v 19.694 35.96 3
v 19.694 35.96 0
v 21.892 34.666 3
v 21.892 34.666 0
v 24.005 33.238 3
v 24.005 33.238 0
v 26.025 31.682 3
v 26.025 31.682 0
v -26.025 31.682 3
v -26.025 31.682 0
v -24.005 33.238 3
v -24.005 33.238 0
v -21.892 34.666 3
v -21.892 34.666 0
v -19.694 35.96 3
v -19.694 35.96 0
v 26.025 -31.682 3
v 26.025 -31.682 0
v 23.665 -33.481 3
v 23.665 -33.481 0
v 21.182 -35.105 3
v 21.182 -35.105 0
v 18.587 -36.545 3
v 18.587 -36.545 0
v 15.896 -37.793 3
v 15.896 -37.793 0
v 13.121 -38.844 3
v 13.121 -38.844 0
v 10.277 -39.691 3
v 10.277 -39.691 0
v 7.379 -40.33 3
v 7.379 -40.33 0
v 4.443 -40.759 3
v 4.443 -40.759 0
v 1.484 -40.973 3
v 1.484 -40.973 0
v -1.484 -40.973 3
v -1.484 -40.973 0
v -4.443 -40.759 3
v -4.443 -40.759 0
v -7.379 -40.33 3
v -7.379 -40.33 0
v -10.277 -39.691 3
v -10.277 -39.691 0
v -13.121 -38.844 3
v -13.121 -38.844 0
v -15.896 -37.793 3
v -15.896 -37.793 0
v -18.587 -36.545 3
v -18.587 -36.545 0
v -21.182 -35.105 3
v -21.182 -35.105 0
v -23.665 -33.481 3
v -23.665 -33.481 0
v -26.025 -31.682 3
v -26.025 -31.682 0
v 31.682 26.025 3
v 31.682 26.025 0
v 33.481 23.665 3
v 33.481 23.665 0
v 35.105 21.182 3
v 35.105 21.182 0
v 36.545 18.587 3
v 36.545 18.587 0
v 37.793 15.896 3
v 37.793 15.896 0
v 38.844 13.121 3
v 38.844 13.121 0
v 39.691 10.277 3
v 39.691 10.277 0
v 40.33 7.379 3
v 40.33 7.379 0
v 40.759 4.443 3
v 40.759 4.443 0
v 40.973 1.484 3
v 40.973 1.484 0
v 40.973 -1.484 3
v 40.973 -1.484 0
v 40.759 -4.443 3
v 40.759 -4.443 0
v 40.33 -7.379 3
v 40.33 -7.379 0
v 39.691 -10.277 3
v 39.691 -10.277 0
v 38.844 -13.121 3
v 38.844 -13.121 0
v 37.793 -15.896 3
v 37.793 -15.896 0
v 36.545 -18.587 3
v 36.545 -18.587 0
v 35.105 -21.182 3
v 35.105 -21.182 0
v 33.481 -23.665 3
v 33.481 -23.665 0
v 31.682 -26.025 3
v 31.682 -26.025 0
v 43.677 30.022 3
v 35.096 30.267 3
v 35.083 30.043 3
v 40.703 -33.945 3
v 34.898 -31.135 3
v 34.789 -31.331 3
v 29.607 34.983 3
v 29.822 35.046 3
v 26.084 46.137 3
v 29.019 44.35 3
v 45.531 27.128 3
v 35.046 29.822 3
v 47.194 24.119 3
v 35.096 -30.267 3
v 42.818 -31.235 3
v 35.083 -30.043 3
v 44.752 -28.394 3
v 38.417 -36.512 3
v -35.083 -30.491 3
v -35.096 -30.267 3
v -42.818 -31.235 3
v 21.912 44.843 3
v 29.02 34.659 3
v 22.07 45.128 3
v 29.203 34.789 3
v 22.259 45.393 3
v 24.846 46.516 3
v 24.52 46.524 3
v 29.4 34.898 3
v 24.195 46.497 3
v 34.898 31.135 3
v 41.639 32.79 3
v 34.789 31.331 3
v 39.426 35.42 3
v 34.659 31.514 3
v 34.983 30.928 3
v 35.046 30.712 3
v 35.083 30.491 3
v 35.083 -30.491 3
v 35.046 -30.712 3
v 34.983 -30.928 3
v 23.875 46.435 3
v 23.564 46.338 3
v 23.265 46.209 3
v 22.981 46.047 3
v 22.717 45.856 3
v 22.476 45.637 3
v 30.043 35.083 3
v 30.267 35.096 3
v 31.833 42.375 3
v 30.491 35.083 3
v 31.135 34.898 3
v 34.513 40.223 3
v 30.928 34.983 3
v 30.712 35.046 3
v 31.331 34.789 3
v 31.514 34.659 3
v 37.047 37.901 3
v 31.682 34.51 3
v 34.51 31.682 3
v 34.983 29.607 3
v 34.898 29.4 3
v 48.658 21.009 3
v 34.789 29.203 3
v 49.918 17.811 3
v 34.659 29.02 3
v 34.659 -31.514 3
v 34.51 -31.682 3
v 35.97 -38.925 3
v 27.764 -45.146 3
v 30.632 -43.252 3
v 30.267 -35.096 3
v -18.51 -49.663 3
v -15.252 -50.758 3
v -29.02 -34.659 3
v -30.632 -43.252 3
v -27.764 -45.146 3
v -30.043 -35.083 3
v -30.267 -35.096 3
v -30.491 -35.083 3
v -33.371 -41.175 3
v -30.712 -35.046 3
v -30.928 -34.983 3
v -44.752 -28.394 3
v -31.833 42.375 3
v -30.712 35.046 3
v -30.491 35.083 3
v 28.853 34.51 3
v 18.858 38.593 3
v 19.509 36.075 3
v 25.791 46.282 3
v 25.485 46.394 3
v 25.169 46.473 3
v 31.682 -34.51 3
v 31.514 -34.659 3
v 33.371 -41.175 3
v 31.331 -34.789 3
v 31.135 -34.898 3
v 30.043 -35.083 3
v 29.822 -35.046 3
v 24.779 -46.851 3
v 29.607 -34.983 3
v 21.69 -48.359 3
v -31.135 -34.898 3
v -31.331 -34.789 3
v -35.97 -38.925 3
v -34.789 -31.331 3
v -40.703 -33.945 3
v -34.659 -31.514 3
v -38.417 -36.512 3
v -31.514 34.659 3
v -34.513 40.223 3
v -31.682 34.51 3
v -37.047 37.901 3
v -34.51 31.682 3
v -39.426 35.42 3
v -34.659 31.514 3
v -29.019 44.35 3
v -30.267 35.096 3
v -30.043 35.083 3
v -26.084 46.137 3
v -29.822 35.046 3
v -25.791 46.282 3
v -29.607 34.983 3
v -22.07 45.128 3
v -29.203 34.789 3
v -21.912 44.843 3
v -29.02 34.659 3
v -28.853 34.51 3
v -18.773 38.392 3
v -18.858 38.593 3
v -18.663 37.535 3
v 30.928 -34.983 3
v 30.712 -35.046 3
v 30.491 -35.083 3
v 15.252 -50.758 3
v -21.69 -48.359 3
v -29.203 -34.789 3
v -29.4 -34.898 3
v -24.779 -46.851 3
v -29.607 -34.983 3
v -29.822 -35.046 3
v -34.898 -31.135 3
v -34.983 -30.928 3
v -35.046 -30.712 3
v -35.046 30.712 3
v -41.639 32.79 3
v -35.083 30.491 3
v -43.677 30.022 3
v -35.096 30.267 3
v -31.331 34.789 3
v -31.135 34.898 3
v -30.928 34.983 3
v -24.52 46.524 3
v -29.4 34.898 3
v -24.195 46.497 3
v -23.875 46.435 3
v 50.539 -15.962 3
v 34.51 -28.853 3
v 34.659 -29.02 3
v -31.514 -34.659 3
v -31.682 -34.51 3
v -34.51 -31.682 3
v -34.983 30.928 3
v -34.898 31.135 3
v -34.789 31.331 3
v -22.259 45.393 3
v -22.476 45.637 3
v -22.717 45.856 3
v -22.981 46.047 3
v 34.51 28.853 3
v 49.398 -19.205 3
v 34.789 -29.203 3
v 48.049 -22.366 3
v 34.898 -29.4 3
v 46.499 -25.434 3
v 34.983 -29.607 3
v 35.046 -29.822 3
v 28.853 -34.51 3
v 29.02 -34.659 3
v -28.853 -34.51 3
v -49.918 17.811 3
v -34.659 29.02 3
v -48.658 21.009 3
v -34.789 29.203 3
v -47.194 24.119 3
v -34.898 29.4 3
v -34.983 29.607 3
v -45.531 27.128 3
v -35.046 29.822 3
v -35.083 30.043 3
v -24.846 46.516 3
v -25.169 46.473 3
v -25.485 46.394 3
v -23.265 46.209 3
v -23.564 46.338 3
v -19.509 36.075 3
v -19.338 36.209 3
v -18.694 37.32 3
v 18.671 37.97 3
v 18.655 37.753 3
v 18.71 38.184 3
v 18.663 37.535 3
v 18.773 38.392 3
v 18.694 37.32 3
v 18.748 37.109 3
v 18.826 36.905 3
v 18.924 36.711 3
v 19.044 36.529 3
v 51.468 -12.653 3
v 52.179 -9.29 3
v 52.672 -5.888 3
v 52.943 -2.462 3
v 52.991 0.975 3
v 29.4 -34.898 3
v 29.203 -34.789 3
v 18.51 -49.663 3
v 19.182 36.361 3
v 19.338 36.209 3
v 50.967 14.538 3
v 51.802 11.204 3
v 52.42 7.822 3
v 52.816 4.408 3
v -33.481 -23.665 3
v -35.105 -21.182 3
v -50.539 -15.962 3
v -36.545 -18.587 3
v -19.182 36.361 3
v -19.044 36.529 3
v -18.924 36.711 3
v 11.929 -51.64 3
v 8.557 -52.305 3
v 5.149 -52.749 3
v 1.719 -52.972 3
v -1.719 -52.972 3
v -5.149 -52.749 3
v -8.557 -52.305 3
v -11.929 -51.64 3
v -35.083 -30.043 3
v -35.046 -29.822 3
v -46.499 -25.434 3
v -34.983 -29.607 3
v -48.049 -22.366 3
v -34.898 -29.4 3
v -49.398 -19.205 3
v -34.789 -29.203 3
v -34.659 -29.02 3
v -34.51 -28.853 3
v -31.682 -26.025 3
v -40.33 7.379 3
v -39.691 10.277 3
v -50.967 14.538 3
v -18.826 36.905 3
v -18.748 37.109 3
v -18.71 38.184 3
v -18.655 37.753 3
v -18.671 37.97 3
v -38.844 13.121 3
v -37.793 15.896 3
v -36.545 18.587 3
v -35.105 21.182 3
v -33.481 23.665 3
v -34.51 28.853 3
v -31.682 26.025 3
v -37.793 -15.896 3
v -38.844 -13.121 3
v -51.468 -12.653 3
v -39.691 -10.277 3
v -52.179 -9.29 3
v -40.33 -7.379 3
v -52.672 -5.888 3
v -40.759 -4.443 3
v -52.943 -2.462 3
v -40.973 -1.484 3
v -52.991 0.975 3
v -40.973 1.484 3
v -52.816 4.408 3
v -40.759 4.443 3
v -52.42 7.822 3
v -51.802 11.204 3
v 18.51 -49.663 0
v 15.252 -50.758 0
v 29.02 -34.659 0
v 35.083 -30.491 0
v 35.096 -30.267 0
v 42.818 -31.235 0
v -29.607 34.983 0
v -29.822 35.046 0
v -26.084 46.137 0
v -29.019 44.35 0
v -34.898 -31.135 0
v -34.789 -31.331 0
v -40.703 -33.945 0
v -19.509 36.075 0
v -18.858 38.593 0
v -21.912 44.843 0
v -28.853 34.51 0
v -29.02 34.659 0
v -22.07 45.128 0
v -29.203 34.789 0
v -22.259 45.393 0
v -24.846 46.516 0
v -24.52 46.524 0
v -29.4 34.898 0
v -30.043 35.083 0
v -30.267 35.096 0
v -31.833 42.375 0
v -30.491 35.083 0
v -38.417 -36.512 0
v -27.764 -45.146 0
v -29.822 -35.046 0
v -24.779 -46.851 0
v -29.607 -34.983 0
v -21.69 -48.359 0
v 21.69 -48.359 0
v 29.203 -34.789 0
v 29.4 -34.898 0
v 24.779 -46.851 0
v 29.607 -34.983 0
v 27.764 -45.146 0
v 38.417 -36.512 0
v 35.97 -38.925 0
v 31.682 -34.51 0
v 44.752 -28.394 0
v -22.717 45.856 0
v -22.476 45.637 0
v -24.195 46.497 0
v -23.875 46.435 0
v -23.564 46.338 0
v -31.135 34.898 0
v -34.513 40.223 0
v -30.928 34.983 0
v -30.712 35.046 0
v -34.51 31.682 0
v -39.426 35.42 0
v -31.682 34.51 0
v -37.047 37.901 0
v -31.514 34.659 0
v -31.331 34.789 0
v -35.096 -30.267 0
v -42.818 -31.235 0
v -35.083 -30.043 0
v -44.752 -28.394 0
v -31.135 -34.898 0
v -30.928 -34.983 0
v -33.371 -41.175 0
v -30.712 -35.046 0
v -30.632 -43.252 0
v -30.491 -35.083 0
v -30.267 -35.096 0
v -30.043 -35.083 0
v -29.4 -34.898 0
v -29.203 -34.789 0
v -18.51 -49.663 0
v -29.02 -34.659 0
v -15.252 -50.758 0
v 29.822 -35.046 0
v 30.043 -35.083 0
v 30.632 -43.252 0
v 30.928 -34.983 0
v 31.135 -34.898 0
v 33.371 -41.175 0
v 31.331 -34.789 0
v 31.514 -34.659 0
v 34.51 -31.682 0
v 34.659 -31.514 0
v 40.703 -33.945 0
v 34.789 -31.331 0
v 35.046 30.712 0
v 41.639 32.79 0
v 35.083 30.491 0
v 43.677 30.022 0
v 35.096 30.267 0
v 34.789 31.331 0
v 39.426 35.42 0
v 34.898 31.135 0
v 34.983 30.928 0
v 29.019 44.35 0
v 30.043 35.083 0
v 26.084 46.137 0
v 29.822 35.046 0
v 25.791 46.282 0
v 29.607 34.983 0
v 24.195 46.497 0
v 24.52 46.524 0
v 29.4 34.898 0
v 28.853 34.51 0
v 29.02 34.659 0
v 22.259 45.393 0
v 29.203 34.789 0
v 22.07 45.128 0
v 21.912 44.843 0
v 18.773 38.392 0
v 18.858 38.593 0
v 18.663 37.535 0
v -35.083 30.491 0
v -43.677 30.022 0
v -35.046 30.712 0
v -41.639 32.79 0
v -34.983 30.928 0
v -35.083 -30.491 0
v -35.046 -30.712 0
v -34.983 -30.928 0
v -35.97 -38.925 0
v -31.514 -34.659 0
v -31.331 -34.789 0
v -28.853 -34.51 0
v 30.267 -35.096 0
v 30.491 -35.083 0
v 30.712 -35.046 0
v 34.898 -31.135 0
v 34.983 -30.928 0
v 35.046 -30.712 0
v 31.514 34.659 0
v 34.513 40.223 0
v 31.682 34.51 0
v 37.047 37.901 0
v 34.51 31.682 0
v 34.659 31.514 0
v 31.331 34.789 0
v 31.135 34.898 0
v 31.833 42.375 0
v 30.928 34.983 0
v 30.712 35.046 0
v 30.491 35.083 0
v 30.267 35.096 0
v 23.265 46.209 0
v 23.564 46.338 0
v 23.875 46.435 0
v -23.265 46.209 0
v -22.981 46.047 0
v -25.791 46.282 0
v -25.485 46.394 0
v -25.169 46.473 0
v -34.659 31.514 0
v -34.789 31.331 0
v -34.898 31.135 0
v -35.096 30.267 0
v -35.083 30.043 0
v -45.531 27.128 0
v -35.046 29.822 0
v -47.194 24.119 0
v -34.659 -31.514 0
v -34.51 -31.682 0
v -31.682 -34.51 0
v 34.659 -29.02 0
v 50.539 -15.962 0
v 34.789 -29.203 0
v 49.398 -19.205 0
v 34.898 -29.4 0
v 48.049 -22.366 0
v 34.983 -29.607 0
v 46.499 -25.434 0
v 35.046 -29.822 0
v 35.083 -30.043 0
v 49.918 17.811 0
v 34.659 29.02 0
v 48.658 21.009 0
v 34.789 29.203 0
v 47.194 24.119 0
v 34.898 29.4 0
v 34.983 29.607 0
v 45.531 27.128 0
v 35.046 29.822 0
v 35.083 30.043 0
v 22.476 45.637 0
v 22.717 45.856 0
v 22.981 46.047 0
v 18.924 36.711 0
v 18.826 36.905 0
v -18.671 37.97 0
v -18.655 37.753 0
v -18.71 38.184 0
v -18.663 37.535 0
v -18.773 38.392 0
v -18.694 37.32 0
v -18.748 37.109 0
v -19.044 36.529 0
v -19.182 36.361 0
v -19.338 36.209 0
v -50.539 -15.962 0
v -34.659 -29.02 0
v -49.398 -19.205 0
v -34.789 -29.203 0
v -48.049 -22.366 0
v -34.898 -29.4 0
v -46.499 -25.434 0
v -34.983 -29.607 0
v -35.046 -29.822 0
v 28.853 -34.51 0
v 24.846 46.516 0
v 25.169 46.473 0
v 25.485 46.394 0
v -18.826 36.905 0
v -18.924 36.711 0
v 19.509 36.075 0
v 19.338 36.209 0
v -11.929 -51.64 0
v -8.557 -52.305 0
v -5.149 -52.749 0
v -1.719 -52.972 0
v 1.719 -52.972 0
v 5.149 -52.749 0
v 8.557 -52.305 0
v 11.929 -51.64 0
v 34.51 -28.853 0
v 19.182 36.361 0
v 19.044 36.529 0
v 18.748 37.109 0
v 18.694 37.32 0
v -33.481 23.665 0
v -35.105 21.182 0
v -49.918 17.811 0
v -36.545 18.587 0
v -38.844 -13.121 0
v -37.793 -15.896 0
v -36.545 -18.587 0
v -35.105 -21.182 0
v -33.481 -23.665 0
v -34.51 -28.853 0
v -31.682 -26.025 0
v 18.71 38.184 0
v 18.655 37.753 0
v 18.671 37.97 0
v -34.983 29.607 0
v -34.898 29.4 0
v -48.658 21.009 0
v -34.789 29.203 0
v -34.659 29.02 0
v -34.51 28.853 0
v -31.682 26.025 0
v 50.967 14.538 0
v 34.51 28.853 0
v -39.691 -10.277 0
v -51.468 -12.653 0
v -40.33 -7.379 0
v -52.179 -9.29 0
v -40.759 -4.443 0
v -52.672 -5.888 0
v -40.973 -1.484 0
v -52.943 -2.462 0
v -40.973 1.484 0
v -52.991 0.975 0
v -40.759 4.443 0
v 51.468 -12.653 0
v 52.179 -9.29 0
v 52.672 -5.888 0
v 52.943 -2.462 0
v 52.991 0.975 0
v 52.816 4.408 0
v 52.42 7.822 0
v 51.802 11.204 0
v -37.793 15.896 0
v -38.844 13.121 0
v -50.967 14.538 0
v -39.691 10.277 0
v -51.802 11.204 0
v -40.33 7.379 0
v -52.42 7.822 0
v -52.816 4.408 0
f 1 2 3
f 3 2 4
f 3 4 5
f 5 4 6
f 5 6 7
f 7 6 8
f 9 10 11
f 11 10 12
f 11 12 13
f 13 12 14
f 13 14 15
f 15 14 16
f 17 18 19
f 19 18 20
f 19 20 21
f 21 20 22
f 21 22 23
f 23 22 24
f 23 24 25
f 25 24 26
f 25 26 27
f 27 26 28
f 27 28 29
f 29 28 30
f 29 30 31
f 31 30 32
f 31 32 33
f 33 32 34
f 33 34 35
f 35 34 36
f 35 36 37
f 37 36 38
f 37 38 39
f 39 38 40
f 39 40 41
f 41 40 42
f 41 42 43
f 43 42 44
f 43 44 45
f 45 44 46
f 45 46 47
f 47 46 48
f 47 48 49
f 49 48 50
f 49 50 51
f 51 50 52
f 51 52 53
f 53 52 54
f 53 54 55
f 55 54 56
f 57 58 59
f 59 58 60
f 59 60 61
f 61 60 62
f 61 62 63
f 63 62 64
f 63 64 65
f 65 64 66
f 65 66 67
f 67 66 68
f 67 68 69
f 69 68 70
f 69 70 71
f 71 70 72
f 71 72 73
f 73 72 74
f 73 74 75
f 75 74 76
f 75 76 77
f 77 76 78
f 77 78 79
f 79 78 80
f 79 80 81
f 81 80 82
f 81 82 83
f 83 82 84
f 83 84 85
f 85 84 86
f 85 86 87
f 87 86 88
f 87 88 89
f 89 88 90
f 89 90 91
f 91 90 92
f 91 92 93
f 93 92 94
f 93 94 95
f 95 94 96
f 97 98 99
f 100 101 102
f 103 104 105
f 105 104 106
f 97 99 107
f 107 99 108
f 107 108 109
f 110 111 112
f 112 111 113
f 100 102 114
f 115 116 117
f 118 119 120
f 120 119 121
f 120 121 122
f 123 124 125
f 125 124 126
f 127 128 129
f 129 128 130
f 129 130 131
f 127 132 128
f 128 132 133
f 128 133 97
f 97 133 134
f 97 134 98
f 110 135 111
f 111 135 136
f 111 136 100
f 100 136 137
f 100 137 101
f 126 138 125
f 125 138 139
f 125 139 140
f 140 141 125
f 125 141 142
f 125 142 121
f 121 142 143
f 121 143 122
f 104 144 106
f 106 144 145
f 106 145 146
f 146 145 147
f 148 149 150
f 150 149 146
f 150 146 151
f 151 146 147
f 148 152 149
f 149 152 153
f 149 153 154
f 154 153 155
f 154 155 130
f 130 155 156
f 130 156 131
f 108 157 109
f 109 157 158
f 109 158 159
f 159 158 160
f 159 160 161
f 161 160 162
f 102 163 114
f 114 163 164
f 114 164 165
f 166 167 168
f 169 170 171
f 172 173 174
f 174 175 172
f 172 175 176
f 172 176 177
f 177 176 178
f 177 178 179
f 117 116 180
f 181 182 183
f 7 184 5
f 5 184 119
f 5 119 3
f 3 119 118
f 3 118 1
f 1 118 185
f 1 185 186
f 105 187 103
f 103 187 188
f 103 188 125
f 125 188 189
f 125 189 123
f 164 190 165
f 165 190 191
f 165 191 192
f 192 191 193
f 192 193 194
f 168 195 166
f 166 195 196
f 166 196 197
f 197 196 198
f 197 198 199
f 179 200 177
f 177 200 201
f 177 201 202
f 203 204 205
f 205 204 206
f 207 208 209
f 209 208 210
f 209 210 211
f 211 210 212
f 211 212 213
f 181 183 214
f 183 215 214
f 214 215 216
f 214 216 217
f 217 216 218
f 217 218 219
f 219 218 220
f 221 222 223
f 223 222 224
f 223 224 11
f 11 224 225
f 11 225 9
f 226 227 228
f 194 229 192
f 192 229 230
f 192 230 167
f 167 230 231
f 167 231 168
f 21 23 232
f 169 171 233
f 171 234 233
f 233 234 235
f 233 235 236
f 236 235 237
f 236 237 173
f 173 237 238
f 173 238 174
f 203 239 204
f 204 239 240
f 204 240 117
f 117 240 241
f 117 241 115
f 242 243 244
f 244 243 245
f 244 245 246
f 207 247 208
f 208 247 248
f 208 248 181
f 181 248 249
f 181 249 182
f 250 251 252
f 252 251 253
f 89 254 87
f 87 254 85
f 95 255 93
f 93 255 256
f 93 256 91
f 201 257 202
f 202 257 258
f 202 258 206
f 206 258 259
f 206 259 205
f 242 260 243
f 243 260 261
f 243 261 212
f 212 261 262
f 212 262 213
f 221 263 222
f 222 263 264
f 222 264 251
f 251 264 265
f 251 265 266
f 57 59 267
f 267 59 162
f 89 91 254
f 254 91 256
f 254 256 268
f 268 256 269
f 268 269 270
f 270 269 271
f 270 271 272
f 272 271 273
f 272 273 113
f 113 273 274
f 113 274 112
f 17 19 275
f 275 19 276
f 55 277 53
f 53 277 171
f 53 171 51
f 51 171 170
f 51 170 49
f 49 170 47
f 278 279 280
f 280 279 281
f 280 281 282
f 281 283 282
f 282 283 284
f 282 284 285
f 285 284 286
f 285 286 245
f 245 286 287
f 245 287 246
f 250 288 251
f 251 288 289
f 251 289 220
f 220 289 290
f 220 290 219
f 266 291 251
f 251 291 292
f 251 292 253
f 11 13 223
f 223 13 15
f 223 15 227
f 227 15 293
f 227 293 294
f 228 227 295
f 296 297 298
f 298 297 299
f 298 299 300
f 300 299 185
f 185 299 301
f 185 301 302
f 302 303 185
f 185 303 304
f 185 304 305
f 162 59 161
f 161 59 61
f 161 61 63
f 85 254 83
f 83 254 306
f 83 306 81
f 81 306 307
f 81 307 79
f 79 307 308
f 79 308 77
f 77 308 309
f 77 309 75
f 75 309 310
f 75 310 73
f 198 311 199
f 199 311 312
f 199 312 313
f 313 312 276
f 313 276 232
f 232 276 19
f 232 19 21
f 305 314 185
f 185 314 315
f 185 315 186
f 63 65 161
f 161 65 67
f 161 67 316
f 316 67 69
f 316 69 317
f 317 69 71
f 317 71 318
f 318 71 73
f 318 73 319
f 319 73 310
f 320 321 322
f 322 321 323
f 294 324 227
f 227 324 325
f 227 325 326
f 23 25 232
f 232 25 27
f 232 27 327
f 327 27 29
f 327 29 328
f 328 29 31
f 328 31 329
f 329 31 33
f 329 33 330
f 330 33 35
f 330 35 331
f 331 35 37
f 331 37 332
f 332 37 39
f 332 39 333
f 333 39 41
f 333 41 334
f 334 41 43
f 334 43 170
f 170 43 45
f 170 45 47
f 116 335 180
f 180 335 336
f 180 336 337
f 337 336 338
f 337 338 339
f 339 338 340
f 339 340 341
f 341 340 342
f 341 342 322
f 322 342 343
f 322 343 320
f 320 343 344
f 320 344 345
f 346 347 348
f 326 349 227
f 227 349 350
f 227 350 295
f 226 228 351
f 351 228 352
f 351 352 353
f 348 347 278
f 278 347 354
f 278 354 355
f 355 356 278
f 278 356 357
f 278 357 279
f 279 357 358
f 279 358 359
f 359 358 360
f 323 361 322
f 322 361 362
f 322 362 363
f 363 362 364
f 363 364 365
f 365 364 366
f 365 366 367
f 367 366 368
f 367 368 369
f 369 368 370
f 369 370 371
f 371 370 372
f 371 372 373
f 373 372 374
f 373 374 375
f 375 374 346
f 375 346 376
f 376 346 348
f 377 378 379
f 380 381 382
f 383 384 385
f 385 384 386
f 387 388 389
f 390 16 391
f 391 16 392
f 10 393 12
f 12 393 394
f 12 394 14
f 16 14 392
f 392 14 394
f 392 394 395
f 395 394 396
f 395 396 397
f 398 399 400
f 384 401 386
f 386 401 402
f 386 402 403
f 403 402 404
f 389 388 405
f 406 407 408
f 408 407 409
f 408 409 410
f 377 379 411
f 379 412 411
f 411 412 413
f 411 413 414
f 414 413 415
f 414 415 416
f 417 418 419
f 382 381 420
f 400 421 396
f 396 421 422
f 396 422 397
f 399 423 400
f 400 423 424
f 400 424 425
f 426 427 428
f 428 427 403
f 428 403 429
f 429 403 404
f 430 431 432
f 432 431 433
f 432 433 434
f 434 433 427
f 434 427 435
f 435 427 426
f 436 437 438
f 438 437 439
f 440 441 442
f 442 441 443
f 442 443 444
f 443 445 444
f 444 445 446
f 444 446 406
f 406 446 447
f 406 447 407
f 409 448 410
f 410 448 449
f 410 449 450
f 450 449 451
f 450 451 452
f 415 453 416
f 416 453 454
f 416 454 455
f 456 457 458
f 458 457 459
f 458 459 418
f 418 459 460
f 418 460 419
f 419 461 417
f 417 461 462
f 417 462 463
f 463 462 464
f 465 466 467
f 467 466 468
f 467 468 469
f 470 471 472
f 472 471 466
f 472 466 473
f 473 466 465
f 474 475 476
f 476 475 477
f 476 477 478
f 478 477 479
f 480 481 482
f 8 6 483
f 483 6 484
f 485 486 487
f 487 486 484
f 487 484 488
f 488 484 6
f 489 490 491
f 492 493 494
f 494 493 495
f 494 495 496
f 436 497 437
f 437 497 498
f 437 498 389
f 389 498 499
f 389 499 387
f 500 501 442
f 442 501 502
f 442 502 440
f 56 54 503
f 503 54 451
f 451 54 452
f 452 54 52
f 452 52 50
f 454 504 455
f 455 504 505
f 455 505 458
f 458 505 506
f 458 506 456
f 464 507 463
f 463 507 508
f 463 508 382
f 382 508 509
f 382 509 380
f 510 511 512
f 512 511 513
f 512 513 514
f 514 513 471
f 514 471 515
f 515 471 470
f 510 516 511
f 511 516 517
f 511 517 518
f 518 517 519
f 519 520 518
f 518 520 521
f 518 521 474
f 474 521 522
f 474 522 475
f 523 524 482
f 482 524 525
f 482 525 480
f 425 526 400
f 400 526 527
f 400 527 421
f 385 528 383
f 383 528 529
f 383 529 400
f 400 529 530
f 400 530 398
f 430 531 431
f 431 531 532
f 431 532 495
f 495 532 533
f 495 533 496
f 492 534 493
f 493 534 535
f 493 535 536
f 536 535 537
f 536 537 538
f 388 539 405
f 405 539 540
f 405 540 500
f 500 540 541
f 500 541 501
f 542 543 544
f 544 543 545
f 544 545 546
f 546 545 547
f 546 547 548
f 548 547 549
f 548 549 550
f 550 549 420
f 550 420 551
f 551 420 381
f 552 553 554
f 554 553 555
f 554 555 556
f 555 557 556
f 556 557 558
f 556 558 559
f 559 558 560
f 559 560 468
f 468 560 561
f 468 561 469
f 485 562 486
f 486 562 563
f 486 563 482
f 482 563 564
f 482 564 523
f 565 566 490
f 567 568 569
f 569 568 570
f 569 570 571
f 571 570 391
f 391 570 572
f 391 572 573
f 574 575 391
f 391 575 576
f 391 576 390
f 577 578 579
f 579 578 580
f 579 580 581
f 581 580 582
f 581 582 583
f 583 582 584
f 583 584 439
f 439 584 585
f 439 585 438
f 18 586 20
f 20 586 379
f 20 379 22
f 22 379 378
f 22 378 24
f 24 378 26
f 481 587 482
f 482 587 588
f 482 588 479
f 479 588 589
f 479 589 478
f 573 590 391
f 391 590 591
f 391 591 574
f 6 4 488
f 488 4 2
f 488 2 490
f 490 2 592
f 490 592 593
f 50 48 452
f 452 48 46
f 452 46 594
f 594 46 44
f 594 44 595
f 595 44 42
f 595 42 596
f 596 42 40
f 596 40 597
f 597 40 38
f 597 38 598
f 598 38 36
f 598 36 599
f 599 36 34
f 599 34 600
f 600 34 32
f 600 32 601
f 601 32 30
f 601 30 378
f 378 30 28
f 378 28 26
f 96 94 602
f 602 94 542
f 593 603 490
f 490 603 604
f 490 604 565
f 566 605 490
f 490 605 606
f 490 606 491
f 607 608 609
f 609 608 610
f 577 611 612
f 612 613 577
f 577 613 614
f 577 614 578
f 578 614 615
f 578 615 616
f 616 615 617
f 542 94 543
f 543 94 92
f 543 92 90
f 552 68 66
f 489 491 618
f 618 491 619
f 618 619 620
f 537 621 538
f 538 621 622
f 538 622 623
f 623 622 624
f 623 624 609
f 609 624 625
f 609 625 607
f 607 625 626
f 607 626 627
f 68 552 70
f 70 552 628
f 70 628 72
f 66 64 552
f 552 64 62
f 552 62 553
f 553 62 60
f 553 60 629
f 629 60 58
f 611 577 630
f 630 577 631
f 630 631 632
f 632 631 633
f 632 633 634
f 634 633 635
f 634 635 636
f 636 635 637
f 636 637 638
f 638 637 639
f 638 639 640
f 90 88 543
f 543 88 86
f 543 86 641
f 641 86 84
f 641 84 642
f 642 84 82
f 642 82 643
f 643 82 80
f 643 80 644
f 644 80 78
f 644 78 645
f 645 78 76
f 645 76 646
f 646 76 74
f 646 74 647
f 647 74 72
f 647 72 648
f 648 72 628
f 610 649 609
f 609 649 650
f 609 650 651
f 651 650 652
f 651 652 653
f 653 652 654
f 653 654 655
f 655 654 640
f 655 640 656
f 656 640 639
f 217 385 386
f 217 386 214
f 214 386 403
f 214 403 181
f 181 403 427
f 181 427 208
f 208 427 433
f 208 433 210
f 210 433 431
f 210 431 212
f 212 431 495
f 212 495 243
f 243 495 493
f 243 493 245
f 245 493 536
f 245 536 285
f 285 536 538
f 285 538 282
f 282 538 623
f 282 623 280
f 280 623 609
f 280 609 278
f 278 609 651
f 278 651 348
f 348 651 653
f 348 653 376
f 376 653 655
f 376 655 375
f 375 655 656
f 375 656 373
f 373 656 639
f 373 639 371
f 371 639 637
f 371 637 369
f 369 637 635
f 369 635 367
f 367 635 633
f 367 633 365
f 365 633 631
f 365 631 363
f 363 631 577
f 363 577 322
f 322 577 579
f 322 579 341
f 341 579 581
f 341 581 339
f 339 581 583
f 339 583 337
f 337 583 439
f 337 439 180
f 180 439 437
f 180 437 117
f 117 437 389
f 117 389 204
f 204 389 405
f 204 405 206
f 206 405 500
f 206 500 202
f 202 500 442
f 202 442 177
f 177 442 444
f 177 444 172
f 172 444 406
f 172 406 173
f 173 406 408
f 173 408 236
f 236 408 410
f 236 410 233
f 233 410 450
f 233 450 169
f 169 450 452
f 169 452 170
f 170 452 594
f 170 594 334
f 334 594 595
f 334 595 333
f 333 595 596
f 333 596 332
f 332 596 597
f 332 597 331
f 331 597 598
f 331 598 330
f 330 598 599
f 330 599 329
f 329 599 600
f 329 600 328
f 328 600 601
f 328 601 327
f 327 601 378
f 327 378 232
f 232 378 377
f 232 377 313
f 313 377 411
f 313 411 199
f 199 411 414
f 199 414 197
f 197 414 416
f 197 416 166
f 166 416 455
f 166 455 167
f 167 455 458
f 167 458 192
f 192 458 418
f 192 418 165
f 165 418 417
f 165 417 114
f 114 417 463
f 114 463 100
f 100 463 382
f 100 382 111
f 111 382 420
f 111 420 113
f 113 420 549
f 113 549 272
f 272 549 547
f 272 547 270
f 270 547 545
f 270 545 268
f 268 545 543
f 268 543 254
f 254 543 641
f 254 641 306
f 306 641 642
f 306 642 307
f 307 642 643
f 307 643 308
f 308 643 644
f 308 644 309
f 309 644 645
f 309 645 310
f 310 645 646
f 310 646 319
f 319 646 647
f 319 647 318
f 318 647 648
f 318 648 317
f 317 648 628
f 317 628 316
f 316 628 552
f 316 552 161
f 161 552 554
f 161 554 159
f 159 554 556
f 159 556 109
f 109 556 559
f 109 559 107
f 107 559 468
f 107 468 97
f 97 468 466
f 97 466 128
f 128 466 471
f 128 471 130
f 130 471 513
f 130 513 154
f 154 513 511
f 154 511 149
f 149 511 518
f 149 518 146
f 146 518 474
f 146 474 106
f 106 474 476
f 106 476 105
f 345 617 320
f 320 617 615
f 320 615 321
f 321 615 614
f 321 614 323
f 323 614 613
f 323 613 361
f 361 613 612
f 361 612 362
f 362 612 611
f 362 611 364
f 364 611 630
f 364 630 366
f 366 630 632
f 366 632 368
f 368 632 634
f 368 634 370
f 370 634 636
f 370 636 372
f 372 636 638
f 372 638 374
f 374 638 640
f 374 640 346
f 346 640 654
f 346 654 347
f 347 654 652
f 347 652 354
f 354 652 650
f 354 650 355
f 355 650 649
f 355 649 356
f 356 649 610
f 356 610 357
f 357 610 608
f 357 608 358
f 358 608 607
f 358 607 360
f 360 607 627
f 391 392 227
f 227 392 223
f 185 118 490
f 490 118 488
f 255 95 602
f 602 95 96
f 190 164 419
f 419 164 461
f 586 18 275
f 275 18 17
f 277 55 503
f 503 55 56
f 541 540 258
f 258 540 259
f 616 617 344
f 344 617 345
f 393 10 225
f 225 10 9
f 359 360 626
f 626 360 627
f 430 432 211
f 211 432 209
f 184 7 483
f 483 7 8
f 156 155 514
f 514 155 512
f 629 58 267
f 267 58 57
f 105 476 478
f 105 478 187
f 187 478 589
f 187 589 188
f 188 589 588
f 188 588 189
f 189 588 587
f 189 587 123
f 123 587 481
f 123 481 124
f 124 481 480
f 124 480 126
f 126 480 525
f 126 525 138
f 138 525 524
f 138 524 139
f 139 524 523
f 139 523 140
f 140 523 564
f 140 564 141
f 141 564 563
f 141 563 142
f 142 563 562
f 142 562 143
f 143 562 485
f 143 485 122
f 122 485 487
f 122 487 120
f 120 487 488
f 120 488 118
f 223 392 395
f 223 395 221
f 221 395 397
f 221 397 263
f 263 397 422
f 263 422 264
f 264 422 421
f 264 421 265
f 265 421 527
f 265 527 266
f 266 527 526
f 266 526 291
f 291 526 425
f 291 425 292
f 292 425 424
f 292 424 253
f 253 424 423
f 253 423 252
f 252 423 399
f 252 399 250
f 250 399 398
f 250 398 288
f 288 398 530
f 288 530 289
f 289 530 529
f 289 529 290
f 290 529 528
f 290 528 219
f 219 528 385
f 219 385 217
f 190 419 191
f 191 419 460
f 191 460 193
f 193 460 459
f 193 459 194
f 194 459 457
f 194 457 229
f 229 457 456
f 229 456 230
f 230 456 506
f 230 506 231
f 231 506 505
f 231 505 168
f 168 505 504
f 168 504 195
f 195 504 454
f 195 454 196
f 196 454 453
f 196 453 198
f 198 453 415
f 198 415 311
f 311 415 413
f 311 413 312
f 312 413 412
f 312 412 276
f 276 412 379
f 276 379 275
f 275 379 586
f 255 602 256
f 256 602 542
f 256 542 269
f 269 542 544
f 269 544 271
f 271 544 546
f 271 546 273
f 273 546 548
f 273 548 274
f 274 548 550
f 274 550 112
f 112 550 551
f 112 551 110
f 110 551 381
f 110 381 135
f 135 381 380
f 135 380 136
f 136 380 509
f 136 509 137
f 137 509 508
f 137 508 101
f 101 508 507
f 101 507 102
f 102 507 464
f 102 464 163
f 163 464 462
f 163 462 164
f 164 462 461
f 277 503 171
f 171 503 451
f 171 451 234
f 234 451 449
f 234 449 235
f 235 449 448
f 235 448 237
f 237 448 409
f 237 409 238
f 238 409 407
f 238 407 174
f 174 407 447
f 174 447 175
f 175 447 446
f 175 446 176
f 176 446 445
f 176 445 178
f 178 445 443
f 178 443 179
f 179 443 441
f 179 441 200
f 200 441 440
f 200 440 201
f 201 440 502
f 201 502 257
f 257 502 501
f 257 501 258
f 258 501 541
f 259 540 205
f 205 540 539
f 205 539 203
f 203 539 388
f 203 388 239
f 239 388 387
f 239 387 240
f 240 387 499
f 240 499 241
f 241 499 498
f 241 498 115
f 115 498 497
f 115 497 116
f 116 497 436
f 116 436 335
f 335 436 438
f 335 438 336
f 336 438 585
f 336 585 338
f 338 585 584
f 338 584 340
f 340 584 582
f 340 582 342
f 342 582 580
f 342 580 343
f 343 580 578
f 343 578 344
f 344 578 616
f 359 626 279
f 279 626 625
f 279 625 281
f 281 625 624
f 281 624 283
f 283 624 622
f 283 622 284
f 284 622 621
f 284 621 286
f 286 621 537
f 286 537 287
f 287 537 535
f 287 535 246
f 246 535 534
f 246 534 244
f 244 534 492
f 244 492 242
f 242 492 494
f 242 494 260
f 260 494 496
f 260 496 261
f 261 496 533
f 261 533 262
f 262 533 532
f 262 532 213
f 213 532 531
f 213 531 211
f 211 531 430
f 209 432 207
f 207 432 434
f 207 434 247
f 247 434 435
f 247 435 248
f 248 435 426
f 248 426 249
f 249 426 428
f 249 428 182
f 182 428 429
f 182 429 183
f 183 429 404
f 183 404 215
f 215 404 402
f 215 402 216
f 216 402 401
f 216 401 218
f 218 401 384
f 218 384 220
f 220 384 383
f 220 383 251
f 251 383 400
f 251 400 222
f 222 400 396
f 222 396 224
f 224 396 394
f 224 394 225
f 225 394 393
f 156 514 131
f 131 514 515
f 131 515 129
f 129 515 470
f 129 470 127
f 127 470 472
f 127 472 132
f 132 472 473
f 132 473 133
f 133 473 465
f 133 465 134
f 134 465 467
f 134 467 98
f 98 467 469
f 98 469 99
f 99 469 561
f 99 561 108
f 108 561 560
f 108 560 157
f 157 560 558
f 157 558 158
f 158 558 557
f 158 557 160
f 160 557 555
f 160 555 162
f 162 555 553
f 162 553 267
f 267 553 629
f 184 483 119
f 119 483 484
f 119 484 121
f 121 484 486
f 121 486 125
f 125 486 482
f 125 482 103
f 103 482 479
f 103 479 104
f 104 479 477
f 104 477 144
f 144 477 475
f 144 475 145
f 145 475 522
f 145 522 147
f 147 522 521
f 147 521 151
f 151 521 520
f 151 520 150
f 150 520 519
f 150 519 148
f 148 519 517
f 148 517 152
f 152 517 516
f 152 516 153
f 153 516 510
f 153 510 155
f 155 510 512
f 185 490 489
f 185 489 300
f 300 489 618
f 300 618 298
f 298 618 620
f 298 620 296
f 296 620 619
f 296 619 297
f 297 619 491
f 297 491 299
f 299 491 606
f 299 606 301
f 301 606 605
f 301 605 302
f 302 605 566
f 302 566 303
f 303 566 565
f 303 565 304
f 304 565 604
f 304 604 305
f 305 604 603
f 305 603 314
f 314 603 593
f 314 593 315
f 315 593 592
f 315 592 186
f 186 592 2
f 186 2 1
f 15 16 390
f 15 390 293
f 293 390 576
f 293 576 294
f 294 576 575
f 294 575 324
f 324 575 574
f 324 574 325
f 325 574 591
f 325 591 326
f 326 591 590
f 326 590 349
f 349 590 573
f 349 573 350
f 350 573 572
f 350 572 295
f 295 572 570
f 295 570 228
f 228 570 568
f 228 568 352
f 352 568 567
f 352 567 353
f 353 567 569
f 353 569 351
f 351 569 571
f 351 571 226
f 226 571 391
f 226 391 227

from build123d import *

# Parameters (mm, degrees)
ESQUISSE1_R                  = 53
ESQUISSE1_R_2                = 41
BOSS_EXTRU_1_DEPTH           = 3
ENL_V_MAT_EXTRU_1_DEPTH      = 76.013332148
ENL_V_MAT_EXTRU_1_DEPTH_BACK = 76.013332148
ENL_V_MAT_EXTRU_2_DEPTH      = 76.013332148
ENL_V_MAT_EXTRU_2_DEPTH_BACK = 76.013332148
CONG_1_R                     = 3
CONG_2_R                     = 2


with BuildPart() as part:
    # Esquisse1 → Boss.-Extru.1 (new body)
    with BuildSketch(Plane.XY):
        Circle(ESQUISSE1_R)
        Circle(ESQUISSE1_R_2, mode=Mode.SUBTRACT)
    extrude(amount=BOSS_EXTRU_1_DEPTH)

    # Esquisse2 → Enlèv. mat.-Extru.1 (cut, two sides: drawn at the far end of the back side and taken through both)
    with BuildSketch(Plane.XY.offset(3).offset(-ENL_V_MAT_EXTRU_1_DEPTH_BACK)):
        with BuildLine():
            Line((-18, 36.837480913), (-23.268292683, 47.619182643))
            ThreePointArc((-23.268292683, 47.619182643), (0, 53), (23.268292683, 47.619182643))
            Line((23.268292683, 47.619182643), (18, 36.837480913))
            ThreePointArc((18, 36.837480913), (0, 41), (-18, 36.837480913))
        make_face()
    extrude(amount=ENL_V_MAT_EXTRU_1_DEPTH + ENL_V_MAT_EXTRU_1_DEPTH_BACK, mode=Mode.SUBTRACT)

    # Esquisse3 → Enlèv. mat.-Extru.2 (cut, two sides: drawn at the far end of the back side and taken through both)
    with BuildSketch(Plane.XY.offset(3).offset(-ENL_V_MAT_EXTRU_2_DEPTH_BACK)):
        Polygon((26.024648968, -31.681503217), (31.681503217, -26.024648968), (35.924143904, -30.267289655), (30.267289655, -35.924143904), align=None)
        Polygon((-26.024648968, -31.681503217), (-30.267289655, -35.924143904), (-35.924143904, -30.267289655), (-31.681503217, -26.024648968), align=None)
        Polygon((-26.024648968, 31.681503217), (-31.681503217, 26.024648968), (-35.924143904, 30.267289655), (-30.267289655, 35.924143904), align=None)
        Polygon((26.024648968, 31.681503217), (30.267289655, 35.924143904), (35.924143904, 30.267289655), (31.681503217, 26.024648968), align=None)
    extrude(amount=ENL_V_MAT_EXTRU_2_DEPTH + ENL_V_MAT_EXTRU_2_DEPTH_BACK, mode=Mode.SUBTRACT)

    # Congé1
    cong_1_edges = [part.edges().sort_by_distance(p)[0] for p in [
        (-23.268292683, 47.619182643, 1.5),
        (23.268292683, 47.619182643, 1.5),
    ]]
    fillet(cong_1_edges, radius=CONG_1_R)

    # Congé2
    cong_2_edges = [part.edges().sort_by_distance(p)[0] for p in [
        (18, 36.837480913, 1.5),
        (-18, 36.837480913, 1.5),
        (30.267289655, 35.924143904, 1.5),
        (35.924143904, 30.267289655, 1.5),
        (-30.267289655, 35.924143904, 1.5),
        (-35.924143904, 30.267289655, 1.5),
        (-30.267289655, -35.924143904, 1.5),
        (-35.924143904, -30.267289655, 1.5),
        (35.924143904, -30.267289655, 1.5),
        (30.267289655, -35.924143904, 1.5),
    ]]
    fillet(cong_2_edges, radius=CONG_2_R)


solid = part.part
